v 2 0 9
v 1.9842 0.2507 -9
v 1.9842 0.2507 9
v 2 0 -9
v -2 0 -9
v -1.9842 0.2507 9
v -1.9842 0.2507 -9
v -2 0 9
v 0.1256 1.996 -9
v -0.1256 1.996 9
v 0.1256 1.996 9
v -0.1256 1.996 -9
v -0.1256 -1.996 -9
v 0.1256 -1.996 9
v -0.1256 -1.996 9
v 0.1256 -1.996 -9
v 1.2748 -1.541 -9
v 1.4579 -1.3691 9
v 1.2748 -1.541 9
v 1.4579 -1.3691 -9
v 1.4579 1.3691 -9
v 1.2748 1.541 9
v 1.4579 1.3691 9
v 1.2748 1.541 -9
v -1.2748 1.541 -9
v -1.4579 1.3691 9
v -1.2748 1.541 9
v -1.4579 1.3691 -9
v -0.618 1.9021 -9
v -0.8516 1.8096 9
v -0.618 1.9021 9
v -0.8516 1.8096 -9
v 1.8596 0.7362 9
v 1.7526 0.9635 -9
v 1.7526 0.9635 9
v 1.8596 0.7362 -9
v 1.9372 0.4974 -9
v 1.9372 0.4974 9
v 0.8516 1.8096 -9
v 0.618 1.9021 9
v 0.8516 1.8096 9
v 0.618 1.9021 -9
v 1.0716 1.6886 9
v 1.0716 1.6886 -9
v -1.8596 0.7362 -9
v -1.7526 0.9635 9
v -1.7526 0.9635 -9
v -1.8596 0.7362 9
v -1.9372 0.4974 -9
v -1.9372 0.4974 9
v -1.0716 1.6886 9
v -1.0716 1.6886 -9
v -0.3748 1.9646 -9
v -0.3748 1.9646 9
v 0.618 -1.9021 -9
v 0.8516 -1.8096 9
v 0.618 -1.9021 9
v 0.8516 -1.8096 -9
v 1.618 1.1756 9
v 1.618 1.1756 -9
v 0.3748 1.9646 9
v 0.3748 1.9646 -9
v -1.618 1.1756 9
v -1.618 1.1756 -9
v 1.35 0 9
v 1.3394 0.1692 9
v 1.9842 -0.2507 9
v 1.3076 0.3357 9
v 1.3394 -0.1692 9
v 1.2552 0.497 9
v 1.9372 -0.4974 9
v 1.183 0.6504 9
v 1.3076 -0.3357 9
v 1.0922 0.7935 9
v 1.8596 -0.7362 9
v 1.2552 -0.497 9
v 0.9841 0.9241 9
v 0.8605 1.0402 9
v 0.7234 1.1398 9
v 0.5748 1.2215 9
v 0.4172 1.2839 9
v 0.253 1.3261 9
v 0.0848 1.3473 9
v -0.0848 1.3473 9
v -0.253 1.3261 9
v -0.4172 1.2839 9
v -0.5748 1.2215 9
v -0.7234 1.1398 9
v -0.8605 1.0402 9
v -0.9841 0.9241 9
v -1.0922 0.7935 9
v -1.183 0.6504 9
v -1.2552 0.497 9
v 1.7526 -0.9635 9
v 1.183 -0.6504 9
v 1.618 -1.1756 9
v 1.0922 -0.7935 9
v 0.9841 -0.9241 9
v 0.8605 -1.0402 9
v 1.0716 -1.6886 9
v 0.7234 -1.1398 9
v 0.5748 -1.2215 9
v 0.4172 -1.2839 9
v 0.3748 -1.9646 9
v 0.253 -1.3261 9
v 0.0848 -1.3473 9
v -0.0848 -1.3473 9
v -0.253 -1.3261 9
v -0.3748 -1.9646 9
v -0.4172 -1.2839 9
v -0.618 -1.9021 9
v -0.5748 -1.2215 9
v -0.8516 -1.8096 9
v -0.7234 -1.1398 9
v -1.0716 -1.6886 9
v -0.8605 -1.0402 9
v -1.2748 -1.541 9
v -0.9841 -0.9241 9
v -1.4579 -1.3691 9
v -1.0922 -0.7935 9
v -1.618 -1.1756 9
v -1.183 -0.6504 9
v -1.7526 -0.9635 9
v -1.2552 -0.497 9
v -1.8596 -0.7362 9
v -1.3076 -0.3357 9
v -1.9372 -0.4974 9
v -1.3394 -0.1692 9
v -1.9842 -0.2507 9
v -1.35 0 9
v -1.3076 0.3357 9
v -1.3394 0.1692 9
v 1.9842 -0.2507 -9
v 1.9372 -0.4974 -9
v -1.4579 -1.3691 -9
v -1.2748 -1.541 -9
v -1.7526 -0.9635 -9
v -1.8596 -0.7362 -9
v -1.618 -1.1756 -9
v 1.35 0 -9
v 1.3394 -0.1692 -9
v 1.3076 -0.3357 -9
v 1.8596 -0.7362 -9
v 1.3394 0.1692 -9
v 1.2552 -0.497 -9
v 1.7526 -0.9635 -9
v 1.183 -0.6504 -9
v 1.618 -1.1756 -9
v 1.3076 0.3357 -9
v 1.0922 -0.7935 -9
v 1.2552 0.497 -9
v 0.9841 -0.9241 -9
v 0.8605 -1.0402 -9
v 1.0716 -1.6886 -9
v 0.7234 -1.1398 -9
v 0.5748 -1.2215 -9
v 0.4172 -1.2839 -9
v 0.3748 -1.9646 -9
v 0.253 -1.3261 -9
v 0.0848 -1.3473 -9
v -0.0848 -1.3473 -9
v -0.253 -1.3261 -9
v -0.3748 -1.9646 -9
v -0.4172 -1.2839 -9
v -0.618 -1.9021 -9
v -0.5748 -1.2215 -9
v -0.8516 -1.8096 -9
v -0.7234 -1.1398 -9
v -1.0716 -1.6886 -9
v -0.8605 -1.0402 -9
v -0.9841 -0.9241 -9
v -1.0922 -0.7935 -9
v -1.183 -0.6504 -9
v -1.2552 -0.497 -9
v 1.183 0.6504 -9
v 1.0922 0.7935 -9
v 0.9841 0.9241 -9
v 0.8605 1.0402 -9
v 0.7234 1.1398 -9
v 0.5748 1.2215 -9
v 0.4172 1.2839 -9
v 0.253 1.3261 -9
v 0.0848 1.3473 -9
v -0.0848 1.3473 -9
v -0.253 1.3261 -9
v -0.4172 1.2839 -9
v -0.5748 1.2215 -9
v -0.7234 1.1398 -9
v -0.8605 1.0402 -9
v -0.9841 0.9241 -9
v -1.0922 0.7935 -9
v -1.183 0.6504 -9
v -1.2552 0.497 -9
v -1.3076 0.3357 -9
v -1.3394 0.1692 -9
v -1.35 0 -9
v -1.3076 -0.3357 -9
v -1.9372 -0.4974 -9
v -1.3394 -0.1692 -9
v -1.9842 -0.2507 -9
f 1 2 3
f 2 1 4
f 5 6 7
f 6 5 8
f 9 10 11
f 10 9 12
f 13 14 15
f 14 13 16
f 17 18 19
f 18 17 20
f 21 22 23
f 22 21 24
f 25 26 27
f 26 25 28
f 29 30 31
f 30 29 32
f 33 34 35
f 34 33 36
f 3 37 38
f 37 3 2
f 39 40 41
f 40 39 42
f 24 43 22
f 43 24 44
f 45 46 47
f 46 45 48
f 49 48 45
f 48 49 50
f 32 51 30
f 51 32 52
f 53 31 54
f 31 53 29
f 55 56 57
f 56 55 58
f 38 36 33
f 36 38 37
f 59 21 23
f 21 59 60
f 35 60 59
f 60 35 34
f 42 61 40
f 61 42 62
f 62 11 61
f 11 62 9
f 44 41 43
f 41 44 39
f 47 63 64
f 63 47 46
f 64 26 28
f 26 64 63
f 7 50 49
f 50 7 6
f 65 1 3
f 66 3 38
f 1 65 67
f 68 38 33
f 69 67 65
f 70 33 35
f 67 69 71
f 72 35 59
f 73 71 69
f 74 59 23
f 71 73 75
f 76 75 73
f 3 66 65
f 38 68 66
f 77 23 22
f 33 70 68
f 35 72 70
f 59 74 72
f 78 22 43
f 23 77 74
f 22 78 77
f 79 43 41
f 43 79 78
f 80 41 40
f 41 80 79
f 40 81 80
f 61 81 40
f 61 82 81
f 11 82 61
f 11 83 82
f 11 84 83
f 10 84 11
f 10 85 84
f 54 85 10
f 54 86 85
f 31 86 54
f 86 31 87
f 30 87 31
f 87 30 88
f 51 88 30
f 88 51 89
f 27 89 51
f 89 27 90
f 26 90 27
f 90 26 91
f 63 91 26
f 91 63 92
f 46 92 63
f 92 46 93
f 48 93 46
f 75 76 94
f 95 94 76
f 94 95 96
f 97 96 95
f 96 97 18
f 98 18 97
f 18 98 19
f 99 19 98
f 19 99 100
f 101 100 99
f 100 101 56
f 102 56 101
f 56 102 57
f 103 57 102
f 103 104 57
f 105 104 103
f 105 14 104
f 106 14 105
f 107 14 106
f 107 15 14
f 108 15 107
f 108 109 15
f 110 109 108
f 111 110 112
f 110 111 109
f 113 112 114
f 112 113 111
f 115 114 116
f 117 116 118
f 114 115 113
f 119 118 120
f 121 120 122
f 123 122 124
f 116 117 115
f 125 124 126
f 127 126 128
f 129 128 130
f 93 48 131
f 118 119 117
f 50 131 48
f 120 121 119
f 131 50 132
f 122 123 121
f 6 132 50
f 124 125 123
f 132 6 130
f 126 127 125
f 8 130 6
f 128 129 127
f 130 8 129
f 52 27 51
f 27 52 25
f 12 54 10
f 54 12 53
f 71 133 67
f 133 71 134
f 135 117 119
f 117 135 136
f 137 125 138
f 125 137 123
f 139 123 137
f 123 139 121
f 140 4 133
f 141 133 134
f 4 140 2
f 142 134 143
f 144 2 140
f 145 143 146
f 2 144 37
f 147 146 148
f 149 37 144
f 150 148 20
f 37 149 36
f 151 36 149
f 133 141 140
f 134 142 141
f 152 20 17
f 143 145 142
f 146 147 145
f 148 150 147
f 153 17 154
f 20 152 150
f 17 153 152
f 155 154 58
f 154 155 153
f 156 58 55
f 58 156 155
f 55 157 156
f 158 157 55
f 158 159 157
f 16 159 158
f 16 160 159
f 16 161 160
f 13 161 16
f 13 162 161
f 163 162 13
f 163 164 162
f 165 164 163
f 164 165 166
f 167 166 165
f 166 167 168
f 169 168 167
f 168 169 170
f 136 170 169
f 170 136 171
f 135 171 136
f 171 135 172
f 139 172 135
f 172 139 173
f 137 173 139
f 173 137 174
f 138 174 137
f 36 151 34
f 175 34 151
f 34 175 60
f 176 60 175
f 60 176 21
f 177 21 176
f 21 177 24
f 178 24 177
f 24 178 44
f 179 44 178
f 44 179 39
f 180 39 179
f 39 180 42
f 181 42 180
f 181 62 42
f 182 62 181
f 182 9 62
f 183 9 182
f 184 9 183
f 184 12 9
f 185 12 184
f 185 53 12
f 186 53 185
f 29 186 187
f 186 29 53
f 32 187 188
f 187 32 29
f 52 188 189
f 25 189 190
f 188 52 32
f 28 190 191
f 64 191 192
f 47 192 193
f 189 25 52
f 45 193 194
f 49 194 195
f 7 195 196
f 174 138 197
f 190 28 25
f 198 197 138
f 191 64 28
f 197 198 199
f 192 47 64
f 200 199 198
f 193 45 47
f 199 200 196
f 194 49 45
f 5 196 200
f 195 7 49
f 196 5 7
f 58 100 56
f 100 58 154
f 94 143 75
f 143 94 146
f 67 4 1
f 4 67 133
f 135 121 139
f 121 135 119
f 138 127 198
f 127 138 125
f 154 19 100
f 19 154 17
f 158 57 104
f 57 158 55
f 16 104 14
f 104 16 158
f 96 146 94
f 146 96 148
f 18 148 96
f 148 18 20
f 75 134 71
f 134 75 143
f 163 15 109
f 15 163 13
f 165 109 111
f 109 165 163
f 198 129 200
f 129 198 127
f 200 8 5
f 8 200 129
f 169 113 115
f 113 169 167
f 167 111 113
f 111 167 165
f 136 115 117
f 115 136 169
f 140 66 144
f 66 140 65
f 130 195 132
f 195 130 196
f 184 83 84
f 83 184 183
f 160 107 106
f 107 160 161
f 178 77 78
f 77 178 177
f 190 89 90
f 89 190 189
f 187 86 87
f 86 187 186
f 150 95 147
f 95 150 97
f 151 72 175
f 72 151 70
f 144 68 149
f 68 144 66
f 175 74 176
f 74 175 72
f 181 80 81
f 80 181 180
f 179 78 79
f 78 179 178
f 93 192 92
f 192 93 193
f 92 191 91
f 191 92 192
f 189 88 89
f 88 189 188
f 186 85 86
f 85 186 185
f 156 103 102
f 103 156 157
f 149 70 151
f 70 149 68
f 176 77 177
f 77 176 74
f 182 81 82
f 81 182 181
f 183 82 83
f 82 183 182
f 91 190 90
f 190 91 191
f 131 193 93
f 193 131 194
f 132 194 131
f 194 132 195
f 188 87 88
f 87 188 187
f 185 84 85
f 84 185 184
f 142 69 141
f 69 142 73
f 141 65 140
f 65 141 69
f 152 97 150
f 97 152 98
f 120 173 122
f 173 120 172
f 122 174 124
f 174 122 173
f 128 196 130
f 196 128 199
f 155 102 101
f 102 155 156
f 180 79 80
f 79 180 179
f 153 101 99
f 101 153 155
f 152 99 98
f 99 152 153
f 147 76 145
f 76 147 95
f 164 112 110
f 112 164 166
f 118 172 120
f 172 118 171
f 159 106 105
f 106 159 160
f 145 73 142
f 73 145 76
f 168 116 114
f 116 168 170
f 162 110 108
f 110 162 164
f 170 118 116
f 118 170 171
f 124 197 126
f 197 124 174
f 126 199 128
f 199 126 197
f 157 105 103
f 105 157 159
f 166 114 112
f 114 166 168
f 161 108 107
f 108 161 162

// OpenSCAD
$fn = 50;


difference() {
	union() {
		translate(v = [0, 0, -9.0000000000]) {
			cylinder(h = 18, r = 2.0000000000);
		}
	}
	union() {
		translate(v = [0, 0, -100.0000000000]) {
			cylinder(h = 200, r = 1.3500000000);
		}
	}
}
